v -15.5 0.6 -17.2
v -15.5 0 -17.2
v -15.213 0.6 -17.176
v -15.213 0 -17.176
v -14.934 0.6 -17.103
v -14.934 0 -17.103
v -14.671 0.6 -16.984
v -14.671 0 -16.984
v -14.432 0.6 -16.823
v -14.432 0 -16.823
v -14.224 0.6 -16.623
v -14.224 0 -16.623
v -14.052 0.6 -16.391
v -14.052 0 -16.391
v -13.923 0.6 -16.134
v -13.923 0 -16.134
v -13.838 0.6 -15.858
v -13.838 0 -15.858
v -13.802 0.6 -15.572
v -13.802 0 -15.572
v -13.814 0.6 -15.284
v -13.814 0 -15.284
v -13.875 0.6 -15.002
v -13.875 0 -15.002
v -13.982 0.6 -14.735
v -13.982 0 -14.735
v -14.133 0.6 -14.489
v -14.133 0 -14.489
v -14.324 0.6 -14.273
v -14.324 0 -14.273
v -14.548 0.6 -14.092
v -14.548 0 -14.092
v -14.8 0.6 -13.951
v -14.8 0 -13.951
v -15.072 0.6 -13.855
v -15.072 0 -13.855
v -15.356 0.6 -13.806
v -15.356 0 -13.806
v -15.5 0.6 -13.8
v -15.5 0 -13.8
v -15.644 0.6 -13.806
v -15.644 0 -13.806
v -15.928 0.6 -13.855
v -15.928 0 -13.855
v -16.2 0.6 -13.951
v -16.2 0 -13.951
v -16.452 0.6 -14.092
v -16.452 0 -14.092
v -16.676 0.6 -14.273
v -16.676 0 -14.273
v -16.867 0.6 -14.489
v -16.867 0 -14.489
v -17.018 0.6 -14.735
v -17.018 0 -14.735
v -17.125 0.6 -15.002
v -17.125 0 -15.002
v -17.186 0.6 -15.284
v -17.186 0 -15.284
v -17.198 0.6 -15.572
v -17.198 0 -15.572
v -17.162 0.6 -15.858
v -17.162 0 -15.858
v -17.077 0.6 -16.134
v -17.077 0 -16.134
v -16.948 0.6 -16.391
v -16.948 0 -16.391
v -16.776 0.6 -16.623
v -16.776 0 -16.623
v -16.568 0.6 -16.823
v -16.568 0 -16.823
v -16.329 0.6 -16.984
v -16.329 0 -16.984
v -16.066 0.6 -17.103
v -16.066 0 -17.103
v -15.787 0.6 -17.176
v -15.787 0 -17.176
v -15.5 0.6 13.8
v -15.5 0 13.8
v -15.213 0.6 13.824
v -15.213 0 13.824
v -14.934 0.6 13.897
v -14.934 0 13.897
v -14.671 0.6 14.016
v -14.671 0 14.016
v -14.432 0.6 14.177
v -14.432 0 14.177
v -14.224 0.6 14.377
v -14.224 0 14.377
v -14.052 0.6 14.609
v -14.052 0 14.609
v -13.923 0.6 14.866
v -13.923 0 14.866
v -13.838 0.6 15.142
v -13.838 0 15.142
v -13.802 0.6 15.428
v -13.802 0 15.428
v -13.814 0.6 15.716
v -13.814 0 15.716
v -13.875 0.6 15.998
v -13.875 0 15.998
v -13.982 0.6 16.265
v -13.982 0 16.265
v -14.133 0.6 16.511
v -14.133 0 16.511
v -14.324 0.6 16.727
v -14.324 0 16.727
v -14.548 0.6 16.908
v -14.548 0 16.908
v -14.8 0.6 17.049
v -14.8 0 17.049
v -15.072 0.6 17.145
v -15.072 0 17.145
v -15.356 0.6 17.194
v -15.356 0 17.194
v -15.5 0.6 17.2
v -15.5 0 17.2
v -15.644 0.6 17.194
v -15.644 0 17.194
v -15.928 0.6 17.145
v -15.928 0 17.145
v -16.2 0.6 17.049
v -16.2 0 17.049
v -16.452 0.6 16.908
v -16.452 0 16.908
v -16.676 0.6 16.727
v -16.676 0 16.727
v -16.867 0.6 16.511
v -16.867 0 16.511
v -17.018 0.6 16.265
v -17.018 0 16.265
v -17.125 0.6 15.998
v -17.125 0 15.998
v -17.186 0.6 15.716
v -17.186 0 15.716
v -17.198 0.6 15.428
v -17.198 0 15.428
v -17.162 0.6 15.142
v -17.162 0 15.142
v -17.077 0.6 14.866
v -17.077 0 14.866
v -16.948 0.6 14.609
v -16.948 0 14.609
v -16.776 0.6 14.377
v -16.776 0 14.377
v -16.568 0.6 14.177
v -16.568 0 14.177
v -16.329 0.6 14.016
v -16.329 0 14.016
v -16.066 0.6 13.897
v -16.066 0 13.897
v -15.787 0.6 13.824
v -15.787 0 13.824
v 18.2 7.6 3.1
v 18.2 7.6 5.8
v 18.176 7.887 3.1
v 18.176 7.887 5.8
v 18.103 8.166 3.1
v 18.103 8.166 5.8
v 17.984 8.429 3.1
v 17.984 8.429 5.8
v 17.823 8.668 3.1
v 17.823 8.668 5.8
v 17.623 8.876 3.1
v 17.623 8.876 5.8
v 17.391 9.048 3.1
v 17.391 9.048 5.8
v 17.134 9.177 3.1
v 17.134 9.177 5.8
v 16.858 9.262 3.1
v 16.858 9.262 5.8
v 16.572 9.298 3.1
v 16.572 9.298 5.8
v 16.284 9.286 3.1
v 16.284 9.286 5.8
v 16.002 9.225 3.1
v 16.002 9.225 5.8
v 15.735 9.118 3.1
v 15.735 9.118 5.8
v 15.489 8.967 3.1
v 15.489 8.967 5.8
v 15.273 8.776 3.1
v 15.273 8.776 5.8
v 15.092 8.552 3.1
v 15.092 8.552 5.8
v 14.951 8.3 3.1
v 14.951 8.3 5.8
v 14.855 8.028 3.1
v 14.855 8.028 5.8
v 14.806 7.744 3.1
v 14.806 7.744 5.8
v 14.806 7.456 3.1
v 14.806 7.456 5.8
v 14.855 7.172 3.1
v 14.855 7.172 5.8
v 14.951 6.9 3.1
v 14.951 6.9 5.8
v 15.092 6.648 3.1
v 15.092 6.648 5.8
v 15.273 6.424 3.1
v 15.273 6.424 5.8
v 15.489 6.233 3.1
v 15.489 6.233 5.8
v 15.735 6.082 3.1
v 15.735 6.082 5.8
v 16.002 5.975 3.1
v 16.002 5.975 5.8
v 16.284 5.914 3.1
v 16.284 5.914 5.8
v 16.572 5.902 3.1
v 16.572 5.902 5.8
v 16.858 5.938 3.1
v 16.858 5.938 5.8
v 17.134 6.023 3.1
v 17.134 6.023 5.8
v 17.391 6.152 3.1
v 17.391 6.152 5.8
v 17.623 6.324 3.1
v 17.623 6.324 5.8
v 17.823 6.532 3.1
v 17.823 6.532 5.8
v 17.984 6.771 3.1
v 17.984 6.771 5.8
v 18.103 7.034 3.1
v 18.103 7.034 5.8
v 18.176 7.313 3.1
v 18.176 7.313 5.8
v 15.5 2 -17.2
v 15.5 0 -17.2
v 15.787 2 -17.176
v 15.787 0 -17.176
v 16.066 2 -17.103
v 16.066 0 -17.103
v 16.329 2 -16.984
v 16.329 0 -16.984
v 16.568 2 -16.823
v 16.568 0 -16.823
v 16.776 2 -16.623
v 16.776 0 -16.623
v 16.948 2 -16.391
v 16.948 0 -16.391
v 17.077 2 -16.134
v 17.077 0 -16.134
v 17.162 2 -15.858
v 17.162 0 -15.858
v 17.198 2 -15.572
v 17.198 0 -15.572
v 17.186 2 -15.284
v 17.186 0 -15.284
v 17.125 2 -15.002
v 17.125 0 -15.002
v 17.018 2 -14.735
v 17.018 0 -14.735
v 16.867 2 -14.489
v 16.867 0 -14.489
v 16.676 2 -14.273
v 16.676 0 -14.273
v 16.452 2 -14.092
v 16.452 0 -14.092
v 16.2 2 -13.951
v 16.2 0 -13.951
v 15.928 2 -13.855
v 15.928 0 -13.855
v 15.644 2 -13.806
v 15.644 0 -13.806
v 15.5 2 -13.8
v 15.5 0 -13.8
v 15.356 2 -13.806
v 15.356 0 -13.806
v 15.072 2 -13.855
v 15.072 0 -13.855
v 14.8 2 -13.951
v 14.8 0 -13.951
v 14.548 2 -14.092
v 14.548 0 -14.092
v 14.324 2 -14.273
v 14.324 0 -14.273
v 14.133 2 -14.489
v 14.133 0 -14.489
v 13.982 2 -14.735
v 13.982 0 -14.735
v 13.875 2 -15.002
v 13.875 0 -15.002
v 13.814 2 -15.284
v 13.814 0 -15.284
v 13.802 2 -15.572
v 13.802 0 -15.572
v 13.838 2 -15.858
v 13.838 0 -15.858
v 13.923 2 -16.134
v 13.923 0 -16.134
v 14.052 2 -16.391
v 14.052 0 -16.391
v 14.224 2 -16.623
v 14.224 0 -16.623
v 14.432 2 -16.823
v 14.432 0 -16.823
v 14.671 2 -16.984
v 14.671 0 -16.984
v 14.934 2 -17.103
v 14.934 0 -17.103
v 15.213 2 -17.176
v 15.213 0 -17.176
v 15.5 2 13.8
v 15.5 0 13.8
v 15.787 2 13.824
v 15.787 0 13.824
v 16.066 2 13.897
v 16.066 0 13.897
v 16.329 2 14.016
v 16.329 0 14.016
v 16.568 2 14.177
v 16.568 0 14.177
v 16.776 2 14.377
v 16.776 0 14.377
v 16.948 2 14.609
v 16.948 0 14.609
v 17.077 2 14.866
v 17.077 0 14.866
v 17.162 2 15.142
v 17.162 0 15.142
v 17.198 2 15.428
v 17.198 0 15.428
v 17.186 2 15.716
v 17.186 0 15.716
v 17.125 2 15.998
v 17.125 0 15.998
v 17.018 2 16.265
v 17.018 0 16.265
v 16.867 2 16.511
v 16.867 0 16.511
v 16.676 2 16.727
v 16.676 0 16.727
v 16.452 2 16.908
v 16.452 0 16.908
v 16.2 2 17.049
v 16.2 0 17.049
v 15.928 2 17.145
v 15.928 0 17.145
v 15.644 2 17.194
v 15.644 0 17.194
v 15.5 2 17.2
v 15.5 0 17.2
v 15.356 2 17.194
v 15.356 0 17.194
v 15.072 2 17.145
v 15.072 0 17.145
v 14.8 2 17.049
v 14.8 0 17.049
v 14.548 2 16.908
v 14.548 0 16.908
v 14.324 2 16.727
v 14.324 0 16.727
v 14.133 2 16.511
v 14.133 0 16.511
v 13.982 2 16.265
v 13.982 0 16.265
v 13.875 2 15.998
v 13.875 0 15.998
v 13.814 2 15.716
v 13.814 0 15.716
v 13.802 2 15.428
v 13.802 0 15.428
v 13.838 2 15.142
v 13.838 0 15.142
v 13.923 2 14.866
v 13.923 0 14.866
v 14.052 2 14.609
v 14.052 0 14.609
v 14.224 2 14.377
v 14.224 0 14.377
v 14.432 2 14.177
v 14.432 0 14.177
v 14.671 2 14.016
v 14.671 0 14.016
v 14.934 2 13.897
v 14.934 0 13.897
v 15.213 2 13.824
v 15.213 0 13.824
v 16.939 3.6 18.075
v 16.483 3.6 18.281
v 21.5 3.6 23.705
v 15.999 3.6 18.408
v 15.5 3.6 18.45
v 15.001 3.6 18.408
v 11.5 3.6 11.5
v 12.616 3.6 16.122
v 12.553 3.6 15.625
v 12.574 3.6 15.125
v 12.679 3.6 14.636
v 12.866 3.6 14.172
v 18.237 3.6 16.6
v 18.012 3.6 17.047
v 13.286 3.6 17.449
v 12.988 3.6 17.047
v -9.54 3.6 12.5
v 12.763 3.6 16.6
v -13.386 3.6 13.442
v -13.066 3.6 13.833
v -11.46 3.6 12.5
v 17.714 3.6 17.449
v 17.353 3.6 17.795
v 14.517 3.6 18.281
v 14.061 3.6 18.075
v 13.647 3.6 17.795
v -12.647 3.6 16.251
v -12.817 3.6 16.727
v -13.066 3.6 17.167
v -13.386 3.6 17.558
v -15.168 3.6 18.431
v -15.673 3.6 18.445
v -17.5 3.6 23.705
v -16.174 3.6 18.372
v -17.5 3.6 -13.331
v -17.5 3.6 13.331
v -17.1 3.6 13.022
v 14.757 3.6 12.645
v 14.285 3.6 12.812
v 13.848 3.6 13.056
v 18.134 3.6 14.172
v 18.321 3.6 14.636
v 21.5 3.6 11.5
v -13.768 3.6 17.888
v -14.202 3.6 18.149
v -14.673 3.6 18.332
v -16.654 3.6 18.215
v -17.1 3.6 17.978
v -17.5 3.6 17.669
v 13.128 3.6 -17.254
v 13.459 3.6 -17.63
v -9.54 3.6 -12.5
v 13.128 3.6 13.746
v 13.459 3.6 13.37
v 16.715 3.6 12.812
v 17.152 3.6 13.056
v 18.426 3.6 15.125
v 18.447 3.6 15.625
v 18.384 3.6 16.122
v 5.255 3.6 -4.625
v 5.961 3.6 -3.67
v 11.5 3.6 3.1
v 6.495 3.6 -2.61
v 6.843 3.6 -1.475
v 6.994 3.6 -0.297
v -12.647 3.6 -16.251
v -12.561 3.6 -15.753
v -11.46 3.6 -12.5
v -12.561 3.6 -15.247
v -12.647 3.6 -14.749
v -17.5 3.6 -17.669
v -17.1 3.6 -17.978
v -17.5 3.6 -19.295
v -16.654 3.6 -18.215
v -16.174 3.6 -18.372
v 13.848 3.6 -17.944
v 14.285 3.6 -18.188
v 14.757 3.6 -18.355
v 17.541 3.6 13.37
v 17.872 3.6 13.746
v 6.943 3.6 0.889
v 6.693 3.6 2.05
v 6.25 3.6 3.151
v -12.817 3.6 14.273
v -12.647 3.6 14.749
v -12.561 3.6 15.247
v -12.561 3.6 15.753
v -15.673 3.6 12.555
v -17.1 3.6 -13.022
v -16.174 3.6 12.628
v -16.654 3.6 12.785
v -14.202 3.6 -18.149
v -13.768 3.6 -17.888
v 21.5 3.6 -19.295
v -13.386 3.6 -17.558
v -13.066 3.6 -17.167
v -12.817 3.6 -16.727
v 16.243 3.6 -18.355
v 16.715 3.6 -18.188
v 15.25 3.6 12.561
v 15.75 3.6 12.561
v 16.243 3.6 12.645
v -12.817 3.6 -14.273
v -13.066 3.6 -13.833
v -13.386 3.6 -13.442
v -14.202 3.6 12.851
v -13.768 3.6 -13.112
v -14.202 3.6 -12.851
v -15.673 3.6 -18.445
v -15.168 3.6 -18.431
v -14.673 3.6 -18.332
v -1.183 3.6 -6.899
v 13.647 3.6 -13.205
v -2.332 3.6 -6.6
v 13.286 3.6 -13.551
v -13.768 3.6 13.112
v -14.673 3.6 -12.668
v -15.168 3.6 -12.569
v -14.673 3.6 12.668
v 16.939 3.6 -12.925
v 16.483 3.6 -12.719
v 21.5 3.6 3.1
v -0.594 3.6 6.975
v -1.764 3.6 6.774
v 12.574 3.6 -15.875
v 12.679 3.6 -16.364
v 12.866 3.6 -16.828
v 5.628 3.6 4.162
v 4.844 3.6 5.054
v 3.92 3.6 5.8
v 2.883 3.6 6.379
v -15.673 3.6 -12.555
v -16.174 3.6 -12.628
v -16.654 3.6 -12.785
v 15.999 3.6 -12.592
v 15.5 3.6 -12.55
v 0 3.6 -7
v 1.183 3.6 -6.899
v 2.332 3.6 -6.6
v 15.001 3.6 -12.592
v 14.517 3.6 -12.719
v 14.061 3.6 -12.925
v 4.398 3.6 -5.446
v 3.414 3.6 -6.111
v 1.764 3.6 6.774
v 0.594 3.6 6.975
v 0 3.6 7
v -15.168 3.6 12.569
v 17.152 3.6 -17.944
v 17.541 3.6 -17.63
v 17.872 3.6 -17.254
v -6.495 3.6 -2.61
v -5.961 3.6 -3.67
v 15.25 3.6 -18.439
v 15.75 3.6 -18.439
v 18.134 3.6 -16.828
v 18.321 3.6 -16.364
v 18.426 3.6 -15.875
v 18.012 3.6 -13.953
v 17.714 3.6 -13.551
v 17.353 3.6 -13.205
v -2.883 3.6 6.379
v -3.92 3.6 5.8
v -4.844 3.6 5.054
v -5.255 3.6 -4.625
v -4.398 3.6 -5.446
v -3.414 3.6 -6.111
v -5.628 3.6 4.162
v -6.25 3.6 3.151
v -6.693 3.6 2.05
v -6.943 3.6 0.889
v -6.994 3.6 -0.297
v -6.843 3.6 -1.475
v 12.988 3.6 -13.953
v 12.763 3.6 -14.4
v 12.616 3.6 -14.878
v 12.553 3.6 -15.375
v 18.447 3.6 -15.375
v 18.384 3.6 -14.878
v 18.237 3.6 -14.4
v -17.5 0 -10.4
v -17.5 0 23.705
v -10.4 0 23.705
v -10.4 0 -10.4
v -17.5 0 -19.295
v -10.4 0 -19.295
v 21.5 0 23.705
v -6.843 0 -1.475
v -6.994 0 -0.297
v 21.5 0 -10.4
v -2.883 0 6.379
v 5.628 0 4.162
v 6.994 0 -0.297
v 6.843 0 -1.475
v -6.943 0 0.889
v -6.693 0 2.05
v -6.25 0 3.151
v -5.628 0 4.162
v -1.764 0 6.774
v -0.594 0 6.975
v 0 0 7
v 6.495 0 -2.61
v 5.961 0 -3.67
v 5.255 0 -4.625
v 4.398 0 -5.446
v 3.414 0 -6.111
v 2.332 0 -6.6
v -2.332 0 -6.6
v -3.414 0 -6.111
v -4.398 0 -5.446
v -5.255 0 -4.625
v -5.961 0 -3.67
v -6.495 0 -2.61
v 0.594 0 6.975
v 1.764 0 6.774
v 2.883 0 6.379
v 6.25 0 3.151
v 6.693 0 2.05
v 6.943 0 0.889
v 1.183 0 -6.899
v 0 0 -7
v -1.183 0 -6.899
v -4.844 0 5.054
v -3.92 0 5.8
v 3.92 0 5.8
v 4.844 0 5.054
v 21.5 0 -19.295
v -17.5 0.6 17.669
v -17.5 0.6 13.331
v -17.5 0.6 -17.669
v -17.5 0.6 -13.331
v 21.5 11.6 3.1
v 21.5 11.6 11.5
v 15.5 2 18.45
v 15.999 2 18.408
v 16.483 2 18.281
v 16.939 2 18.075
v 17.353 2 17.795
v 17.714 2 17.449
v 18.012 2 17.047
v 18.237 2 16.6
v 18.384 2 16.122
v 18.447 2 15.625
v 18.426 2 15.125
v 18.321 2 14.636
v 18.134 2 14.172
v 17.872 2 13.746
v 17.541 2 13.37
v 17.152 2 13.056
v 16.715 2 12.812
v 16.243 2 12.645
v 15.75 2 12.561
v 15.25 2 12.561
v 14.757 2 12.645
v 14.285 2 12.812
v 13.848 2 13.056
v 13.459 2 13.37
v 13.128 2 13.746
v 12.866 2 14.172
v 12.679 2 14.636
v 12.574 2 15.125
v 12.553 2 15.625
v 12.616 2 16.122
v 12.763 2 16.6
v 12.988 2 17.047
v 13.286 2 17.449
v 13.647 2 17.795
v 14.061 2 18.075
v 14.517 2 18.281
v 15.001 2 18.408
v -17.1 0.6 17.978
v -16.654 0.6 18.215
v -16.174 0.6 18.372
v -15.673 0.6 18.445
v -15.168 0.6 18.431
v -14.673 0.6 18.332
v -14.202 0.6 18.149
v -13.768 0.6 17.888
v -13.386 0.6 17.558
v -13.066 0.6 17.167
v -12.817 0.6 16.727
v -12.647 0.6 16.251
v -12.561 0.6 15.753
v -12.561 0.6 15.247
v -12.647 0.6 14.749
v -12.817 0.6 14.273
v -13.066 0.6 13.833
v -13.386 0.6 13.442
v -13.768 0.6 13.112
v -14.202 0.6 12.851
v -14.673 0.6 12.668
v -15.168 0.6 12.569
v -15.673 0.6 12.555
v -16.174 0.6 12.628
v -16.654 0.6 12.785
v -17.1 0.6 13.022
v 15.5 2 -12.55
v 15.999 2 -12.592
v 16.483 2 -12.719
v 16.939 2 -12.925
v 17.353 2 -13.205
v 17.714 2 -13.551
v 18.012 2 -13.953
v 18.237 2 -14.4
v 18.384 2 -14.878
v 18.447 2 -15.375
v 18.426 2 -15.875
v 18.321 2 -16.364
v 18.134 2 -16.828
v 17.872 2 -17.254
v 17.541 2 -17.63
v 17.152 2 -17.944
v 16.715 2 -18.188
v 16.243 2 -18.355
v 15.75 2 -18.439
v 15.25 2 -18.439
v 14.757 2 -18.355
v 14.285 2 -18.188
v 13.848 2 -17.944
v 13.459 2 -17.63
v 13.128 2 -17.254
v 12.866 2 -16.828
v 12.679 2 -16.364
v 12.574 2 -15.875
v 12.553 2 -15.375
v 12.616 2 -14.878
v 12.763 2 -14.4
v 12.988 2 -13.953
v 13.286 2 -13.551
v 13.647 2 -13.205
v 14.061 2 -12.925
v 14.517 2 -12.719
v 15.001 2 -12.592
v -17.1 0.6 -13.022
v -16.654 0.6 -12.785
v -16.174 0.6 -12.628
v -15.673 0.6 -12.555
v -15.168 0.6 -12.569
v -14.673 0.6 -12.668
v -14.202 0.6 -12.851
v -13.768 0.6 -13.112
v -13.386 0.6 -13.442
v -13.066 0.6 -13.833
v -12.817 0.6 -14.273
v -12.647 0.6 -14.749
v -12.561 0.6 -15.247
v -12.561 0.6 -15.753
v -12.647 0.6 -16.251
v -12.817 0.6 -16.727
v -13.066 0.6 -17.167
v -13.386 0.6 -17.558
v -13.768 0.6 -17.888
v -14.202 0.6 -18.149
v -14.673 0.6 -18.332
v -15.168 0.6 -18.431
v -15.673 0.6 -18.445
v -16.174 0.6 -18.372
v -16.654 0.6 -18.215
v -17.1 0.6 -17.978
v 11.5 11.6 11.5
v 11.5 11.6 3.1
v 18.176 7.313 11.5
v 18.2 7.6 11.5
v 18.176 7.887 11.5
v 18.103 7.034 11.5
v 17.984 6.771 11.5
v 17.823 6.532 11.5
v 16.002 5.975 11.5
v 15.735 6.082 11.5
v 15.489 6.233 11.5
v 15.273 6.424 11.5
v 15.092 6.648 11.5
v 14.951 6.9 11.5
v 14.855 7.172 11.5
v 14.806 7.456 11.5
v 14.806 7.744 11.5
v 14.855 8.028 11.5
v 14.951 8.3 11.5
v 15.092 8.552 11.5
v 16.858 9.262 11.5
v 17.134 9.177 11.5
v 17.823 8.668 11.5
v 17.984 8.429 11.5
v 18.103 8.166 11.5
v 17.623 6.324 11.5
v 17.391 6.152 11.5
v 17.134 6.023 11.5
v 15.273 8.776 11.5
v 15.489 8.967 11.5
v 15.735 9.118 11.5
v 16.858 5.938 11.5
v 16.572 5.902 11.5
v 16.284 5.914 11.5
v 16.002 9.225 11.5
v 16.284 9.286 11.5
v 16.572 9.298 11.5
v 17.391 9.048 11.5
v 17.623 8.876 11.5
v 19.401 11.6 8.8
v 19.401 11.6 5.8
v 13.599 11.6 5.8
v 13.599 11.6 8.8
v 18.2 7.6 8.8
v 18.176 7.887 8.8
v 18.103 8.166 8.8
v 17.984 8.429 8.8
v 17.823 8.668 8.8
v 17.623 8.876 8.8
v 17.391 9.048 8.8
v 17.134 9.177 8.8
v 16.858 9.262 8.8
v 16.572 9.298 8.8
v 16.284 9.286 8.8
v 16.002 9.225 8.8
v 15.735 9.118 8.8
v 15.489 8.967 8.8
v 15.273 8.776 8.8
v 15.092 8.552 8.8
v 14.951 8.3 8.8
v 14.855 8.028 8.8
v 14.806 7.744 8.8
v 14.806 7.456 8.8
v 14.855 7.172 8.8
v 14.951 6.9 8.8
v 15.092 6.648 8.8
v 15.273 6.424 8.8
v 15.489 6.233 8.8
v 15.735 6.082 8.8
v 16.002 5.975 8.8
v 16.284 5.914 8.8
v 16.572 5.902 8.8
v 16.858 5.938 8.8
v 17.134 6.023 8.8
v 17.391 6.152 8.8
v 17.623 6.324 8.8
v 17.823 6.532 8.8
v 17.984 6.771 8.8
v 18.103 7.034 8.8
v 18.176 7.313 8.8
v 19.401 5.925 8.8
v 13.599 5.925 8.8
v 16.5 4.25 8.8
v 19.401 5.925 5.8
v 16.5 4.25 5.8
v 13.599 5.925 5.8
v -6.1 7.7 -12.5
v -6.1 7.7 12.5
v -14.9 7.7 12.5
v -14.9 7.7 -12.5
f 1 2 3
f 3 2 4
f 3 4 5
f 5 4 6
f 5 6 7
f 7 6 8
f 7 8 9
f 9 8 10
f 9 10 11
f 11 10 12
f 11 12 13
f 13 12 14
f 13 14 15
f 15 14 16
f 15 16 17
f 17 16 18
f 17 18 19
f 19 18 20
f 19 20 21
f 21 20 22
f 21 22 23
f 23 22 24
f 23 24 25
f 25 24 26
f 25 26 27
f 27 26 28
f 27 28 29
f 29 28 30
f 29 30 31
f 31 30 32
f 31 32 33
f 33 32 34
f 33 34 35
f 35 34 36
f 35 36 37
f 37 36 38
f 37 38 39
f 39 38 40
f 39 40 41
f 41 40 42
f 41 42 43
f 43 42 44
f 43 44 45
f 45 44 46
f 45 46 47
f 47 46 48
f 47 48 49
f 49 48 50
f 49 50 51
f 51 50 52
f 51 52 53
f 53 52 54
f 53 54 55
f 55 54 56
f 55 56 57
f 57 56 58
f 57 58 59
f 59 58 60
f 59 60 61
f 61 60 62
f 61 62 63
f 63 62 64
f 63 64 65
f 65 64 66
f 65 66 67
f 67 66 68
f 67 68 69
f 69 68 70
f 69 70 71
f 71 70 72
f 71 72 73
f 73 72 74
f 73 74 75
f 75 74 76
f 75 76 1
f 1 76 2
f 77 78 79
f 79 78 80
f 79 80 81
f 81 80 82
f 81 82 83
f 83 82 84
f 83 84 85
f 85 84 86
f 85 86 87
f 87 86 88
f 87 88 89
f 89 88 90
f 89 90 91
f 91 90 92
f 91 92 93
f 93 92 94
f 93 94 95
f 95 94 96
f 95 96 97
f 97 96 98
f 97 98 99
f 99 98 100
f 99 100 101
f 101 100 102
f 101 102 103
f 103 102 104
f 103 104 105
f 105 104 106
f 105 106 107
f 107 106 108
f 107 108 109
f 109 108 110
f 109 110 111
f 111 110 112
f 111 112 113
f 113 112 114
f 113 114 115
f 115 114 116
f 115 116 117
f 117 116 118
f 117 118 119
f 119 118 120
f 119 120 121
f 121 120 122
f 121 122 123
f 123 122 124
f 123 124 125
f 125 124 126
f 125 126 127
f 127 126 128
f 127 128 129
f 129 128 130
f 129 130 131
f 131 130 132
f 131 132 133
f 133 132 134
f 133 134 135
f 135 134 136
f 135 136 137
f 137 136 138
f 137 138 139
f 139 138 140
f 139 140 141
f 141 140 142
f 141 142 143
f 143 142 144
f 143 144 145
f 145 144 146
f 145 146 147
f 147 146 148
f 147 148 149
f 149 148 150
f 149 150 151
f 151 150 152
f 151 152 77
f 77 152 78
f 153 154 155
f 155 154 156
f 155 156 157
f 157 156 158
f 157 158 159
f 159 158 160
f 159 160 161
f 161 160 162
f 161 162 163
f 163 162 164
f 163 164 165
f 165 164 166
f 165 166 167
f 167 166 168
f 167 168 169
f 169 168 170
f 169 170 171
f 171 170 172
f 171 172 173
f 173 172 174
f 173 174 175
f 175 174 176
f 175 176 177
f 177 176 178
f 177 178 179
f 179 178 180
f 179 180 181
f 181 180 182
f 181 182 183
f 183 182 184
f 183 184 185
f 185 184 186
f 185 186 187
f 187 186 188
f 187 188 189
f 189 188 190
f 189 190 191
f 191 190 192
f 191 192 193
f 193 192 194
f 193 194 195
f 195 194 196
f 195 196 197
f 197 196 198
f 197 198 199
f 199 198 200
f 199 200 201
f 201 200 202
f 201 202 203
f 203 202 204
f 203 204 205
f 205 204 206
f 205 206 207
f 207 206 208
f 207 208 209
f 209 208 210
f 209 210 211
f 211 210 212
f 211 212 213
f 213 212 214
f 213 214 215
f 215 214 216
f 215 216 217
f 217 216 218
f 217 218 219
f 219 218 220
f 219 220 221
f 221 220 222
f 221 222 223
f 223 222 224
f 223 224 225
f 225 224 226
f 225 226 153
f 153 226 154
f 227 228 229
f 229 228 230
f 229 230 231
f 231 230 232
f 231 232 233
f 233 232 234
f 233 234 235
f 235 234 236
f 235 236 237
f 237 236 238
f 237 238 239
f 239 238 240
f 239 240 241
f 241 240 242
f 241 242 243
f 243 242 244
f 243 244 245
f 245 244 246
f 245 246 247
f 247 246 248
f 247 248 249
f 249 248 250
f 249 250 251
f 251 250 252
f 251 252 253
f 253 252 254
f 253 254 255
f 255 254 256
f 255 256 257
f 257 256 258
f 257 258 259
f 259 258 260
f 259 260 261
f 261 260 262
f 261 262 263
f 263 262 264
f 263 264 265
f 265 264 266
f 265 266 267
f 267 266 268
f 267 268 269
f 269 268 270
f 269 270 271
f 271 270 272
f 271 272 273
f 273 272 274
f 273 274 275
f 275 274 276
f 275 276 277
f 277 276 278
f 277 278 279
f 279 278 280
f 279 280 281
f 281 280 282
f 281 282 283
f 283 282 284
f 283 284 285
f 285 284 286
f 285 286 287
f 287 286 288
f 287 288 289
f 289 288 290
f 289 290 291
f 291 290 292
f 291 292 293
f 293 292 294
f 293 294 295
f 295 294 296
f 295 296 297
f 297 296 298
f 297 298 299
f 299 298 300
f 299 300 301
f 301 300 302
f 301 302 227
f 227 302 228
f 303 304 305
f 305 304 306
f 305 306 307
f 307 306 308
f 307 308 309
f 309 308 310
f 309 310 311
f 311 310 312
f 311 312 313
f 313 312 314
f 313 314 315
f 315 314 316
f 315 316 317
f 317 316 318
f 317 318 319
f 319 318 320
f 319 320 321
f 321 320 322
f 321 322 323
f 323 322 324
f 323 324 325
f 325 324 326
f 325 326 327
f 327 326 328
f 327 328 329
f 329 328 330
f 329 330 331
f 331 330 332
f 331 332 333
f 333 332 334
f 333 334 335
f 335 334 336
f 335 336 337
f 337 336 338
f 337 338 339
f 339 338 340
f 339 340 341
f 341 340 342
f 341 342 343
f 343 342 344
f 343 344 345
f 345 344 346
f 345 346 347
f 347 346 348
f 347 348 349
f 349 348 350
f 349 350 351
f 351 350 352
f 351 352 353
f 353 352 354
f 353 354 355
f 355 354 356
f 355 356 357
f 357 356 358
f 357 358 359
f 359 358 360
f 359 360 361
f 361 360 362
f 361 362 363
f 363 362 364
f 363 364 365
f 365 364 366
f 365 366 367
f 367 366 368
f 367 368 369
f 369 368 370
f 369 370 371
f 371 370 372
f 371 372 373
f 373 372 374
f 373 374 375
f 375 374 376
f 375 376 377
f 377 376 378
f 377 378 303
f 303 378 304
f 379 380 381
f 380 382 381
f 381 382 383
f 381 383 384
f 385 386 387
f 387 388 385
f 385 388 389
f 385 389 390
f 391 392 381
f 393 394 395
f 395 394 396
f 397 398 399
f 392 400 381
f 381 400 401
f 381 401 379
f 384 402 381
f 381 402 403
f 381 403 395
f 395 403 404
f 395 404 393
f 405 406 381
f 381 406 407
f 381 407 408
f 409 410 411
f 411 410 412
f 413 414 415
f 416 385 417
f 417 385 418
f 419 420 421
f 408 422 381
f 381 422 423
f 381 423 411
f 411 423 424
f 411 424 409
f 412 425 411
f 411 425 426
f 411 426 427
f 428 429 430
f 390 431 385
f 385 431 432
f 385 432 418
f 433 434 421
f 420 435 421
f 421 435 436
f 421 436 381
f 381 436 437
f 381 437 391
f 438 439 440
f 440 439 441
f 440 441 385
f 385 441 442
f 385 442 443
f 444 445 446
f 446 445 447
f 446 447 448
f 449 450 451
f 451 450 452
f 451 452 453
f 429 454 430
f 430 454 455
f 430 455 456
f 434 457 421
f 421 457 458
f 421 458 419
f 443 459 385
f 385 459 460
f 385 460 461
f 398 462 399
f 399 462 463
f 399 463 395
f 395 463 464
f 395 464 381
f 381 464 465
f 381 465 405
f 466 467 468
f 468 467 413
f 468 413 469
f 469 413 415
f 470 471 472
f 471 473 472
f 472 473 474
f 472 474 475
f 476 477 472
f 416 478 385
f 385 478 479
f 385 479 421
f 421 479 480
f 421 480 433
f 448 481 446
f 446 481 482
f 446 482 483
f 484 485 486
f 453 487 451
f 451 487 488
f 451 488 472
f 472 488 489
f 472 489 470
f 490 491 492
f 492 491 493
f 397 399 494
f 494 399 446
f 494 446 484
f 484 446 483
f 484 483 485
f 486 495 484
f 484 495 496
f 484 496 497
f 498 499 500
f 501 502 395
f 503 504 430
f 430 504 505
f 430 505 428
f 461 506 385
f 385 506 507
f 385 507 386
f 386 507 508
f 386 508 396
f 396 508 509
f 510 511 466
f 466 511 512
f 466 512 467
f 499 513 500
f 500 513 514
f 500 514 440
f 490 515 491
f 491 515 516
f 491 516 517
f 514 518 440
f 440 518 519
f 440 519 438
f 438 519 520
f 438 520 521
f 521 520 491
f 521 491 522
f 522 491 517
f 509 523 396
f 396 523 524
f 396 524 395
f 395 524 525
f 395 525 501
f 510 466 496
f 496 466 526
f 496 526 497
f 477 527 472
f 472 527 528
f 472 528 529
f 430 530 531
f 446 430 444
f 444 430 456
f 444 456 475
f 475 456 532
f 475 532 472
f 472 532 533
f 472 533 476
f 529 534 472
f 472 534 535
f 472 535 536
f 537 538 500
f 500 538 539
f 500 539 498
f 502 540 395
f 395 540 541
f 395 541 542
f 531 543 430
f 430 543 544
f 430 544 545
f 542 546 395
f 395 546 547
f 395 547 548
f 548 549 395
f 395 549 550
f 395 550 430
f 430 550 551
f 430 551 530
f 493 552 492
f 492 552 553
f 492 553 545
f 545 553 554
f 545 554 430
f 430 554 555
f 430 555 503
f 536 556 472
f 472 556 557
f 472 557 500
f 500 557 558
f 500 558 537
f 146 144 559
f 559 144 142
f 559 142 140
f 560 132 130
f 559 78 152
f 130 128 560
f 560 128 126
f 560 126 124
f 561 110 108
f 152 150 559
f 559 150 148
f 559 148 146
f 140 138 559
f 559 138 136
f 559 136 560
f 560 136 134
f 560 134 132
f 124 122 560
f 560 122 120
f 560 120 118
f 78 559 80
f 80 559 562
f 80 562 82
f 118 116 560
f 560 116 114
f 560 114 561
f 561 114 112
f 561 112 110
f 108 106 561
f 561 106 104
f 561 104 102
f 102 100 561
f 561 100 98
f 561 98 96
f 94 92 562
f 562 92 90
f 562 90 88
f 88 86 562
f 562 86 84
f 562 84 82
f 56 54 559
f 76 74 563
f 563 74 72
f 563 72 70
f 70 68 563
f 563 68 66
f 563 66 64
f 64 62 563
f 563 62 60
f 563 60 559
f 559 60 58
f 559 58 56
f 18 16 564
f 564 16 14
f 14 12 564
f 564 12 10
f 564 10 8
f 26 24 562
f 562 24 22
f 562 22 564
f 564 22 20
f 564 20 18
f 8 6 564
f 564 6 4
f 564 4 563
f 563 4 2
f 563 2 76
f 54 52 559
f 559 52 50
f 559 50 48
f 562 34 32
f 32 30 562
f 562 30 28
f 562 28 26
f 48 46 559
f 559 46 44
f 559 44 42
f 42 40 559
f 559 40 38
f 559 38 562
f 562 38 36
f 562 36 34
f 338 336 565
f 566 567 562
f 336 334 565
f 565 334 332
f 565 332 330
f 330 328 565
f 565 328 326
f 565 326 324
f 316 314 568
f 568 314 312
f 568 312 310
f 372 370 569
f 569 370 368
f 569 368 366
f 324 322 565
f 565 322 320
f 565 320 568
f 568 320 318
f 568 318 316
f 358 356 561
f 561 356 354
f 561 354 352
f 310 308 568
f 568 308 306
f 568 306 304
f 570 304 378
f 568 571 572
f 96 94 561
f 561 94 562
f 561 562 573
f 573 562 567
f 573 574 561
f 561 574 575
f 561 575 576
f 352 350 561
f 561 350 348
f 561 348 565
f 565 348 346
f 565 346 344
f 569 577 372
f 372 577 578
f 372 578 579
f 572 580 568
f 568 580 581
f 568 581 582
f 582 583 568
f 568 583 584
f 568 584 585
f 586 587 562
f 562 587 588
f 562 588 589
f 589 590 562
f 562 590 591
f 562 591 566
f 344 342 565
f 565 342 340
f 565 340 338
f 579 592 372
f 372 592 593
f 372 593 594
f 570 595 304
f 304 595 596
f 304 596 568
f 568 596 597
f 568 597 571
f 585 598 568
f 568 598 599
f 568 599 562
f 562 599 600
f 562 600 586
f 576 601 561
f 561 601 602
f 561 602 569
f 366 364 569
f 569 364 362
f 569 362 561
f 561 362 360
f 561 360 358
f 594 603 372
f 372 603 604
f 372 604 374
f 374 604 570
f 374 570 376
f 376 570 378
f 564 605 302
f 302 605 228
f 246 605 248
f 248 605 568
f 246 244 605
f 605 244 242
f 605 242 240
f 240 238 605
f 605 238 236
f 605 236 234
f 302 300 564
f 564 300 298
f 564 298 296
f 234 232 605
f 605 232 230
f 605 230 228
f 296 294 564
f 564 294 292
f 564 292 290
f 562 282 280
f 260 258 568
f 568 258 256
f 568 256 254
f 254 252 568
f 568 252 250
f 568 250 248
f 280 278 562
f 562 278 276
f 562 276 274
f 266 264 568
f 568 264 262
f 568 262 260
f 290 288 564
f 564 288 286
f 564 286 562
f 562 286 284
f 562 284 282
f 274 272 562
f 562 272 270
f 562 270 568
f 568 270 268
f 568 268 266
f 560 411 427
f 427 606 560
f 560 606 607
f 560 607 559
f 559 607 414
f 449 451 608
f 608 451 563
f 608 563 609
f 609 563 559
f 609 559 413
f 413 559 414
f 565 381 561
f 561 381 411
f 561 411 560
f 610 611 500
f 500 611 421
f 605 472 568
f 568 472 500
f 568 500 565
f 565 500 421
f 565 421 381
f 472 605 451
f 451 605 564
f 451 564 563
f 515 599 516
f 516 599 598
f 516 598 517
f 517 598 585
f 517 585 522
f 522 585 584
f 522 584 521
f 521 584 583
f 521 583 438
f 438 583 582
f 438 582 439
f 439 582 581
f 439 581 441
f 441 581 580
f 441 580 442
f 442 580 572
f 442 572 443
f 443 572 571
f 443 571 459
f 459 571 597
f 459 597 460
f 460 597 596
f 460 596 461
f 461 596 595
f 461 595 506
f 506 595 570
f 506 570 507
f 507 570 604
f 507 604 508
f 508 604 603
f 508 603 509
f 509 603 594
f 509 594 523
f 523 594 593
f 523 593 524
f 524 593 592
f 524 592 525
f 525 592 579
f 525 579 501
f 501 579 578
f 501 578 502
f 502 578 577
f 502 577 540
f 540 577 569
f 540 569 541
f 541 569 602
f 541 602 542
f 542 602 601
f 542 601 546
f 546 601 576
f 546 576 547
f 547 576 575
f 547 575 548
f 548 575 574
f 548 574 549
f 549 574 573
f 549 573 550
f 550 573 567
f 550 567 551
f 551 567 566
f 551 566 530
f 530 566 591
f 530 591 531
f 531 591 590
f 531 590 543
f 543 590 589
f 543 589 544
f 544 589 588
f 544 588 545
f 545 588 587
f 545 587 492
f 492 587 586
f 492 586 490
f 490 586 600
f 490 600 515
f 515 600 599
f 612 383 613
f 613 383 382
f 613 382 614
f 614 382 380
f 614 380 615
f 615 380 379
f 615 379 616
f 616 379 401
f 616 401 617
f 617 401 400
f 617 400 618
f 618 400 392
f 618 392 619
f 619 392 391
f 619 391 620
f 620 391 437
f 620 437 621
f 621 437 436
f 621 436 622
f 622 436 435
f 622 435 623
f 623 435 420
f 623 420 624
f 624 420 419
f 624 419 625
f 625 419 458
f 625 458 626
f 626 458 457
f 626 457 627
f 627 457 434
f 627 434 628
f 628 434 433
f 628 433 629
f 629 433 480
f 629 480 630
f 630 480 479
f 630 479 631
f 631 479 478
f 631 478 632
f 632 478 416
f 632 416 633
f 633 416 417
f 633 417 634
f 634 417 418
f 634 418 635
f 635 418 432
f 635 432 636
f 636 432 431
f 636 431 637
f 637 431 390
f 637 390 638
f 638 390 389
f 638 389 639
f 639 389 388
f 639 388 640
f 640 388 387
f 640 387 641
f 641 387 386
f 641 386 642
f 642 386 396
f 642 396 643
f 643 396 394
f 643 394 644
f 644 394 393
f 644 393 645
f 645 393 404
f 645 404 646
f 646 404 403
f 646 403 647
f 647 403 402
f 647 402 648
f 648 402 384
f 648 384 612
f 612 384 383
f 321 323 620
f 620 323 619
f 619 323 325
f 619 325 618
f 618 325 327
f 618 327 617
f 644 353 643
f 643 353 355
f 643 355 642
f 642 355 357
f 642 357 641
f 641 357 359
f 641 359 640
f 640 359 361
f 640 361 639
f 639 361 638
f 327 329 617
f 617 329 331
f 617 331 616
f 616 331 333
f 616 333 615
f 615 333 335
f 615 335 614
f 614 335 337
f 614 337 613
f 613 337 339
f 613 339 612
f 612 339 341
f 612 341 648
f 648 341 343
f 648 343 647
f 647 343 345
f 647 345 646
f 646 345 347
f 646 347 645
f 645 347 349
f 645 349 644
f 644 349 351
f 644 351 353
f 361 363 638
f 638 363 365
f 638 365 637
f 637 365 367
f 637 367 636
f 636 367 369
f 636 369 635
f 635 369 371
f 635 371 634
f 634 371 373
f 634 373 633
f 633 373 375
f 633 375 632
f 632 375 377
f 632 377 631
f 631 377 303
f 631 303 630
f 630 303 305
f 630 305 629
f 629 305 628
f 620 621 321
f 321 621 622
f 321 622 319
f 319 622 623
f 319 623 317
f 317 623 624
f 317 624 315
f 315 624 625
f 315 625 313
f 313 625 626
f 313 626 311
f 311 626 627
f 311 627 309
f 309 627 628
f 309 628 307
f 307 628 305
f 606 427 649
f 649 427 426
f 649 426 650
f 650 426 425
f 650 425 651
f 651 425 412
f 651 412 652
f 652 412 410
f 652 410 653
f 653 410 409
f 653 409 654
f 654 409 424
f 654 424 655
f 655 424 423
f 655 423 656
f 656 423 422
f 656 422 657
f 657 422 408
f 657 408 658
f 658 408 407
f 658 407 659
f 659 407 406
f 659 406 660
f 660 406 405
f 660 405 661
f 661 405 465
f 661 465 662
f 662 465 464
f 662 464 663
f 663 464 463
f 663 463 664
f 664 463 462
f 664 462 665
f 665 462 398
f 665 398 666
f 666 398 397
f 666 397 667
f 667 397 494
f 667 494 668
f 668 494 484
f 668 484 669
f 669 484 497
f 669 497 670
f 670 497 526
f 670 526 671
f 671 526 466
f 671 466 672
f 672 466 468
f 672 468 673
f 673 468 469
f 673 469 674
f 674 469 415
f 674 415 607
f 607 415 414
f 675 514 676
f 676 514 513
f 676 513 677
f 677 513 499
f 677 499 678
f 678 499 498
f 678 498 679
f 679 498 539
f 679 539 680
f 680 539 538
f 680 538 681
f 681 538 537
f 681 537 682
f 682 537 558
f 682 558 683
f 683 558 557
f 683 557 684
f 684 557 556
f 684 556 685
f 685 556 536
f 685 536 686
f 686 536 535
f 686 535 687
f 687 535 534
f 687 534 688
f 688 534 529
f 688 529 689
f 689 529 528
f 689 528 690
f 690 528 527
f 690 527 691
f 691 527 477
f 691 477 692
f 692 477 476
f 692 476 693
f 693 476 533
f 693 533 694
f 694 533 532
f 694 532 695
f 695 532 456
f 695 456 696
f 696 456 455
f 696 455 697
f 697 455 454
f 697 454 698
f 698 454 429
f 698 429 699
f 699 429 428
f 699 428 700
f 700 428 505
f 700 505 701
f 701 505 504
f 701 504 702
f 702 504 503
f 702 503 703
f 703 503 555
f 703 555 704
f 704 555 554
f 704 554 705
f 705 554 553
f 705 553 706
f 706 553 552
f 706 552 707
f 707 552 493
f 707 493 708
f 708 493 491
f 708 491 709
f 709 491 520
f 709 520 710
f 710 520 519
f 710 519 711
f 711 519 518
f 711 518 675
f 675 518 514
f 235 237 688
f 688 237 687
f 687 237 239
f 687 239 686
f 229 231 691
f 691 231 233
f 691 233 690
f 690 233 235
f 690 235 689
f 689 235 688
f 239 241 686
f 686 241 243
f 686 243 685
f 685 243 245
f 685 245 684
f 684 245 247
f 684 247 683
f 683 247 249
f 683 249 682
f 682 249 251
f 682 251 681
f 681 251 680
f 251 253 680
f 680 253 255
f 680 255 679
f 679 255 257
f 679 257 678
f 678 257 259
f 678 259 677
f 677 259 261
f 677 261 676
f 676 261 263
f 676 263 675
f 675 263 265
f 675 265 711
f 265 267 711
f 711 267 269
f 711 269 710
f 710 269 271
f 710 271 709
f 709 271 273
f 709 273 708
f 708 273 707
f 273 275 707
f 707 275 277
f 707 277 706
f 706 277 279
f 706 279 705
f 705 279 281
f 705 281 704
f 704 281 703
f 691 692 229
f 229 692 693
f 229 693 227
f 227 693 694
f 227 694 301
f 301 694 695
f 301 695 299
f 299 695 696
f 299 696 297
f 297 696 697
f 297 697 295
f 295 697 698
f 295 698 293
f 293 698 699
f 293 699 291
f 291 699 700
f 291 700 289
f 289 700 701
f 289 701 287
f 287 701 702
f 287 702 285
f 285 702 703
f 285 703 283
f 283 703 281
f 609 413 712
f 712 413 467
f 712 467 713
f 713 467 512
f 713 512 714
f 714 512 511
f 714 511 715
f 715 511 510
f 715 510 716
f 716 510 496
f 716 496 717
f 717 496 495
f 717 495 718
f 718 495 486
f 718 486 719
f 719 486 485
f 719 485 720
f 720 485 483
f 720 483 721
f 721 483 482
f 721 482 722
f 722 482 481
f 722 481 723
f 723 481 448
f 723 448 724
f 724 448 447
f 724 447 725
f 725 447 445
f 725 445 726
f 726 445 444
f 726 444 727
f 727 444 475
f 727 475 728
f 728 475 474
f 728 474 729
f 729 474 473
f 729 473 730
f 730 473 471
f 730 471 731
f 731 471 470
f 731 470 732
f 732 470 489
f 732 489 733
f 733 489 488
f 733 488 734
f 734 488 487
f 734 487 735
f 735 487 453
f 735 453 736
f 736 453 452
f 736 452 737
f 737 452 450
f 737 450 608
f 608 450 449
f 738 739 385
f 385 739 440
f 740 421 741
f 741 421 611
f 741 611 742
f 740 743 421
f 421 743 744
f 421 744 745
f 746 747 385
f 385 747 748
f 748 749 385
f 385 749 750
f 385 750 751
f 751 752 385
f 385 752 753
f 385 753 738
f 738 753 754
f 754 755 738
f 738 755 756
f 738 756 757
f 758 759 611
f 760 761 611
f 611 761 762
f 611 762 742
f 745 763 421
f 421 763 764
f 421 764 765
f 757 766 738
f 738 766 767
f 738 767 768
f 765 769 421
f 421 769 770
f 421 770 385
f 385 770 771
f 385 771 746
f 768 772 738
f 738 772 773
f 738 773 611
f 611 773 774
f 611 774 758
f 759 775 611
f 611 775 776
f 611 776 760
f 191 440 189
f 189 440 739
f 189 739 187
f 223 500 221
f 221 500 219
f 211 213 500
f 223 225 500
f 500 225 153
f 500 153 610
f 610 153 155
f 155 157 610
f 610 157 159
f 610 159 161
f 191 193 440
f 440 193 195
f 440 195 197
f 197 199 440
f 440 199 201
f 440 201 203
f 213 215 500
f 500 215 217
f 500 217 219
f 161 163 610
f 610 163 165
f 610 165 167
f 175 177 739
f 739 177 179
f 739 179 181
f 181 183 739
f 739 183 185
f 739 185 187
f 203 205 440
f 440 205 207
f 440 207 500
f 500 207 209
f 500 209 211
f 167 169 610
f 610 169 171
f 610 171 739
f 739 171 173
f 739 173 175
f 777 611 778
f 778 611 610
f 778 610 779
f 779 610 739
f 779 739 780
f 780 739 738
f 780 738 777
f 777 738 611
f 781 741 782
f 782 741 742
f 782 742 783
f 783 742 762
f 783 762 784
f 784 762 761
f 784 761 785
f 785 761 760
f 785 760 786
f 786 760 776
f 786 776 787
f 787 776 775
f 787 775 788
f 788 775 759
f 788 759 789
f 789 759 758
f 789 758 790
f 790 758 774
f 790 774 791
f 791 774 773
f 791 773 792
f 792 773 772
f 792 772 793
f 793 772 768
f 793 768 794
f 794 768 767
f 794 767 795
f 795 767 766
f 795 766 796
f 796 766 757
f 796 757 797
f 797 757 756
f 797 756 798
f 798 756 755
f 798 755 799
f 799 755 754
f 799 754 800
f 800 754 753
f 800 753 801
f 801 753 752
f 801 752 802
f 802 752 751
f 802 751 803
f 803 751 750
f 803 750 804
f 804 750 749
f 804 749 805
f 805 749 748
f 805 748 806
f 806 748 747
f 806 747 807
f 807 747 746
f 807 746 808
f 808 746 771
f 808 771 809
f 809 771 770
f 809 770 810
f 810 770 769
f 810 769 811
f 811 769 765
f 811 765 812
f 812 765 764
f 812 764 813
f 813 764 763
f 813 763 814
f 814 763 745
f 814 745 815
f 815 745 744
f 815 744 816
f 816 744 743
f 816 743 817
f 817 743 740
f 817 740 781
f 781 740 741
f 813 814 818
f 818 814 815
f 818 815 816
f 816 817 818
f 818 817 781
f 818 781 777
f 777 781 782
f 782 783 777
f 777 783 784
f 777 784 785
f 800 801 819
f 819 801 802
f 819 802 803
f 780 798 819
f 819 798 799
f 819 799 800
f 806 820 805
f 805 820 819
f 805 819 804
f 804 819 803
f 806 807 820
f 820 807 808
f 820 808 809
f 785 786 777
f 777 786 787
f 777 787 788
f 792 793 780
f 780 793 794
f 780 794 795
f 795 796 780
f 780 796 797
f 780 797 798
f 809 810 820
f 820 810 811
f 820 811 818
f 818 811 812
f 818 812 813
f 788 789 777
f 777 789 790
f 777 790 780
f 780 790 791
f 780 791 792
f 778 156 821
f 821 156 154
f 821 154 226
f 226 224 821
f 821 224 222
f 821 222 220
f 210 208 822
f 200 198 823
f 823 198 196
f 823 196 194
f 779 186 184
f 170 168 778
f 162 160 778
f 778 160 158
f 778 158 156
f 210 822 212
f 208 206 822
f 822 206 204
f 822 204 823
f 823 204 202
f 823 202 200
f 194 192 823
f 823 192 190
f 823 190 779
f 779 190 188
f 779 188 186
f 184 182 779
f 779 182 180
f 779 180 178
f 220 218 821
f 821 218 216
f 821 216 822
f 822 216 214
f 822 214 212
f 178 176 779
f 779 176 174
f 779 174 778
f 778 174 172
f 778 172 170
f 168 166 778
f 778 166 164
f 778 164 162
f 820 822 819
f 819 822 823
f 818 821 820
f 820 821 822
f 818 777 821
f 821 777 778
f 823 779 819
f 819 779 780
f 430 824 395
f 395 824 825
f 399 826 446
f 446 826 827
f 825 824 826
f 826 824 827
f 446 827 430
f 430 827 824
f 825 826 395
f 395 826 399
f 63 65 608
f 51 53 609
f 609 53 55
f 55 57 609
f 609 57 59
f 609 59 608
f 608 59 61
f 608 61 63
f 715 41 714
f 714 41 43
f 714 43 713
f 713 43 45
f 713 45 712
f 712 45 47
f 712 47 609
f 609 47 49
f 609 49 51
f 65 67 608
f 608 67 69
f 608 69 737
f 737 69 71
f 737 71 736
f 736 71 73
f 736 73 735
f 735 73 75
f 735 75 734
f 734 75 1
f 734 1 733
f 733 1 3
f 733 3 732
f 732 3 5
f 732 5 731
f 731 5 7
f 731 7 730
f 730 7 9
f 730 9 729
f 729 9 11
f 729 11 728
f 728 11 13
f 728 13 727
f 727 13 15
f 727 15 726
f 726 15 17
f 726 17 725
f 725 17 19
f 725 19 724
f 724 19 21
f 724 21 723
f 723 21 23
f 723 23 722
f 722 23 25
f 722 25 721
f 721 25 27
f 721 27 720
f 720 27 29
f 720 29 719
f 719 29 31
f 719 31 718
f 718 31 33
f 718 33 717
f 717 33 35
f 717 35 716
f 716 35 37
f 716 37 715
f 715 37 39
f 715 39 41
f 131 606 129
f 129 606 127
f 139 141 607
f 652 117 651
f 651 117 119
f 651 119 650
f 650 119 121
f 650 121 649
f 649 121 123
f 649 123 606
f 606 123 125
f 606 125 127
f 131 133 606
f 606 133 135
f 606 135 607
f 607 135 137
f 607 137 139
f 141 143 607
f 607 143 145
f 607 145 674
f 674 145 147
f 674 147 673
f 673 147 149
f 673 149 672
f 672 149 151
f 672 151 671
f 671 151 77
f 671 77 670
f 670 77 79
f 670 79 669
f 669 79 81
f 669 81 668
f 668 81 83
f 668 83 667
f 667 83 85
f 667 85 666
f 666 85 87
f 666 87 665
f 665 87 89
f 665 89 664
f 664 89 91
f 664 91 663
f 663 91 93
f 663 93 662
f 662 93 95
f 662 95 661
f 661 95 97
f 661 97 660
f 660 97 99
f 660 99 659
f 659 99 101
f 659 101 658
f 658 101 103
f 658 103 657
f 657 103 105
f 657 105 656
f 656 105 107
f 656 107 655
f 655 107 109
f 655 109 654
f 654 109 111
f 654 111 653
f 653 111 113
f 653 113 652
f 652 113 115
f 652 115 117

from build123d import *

# Parameters (mm, degrees)
CROQUIS1_W                   = 39
CROQUIS1_H                   = 43
CROQUIS1_R                   = 7
CROQUIS1_R_2                 = 1.7
SALIENTE_EXTRUIR1_DEPTH      = 3.6
CROQUIS2_R                   = 2.95
CORTAR_EXTRUIR1_DEPTH        = 1.6
CROQUIS3_W                   = 10
CROQUIS3_H                   = 8.4
SALIENTE_EXTRUIR2_DEPTH      = 8
CROQUIS4_R                   = 1.7
CORTAR_EXTRUIR2_DEPTH        = 11
CORTAR_EXTRUIR3_DEPTH        = 1.5
CORTAR_EXTRUIR3_DEPTH_BACK   = 1.5
SALIENTE_EXTRUIR3_DEPTH      = 12.5
SALIENTE_EXTRUIR3_DEPTH_BACK = 12.5
CORTAR_EXTRUIR4_DEPTH        = 3


with BuildPart() as part:
    # Croquis1 → Saliente-Extruir1 (new body)
    with BuildSketch(Plane(origin=(0, 0, 0), x_dir=(1, 0, 0), z_dir=(0, 1, 0))):
        with Locations((2, -2.205128205)):
            Rectangle(CROQUIS1_W, CROQUIS1_H)
        Circle(CROQUIS1_R, mode=Mode.SUBTRACT)
        with Locations((-15.5, 15.5)):
            Circle(CROQUIS1_R_2, mode=Mode.SUBTRACT)
        with Locations((15.5, 15.5)):
            Circle(CROQUIS1_R_2, mode=Mode.SUBTRACT)
        with Locations((-15.5, -15.5)):
            Circle(CROQUIS1_R_2, mode=Mode.SUBTRACT)
        with Locations((15.5, -15.5)):
            Circle(CROQUIS1_R_2, mode=Mode.SUBTRACT)
    extrude(amount=SALIENTE_EXTRUIR1_DEPTH)

    # Croquis2 → Cortar-Extruir1 (cut)
    with BuildSketch(Plane(origin=(0, 3.6, 0), x_dir=(1, 0, 0), z_dir=(0, 1, 0))):
        with Locations((-15.5, 15.5)):
            Circle(CROQUIS2_R)
        with Locations((15.5, 15.5)):
            Circle(CROQUIS2_R)
        with Locations((-15.5, -15.5)):
            Circle(CROQUIS2_R)
        with Locations((15.5, -15.5)):
            Circle(CROQUIS2_R)
    extrude(amount=-CORTAR_EXTRUIR1_DEPTH, mode=Mode.SUBTRACT)

    # Croquis3 → Saliente-Extruir2 (add)
    with BuildSketch(Plane(origin=(0, 3.6, 0), x_dir=(1, 0, 0), z_dir=(0, 1, 0))):
        with Locations((16.5, -7.3)):
            Rectangle(CROQUIS3_W, CROQUIS3_H)
    extrude(amount=SALIENTE_EXTRUIR2_DEPTH)

    # Croquis4 → Cortar-Extruir2 (cut)
    with BuildSketch(Plane.XY.offset(11.5)):
        with Locations((16.5, 7.6)):
            Circle(CROQUIS4_R)
    extrude(amount=-CORTAR_EXTRUIR2_DEPTH, mode=Mode.SUBTRACT)

    # Croquis5 → Cortar-Extruir3 (cut, two sides)
    with BuildSketch(Plane.XY.offset(7.3)) as cortar_extruir3_sk:
        Polygon((13.598814897, 9.275), (13.598814897, 15.925), (19.401185103, 15.925), (19.401185103, 9.275), (19.401185103, 5.925), (16.5, 4.25), (13.598814897, 5.925), align=None)
    extrude(amount=CORTAR_EXTRUIR3_DEPTH, mode=Mode.SUBTRACT)
    extrude(cortar_extruir3_sk.sketch, amount=-CORTAR_EXTRUIR3_DEPTH_BACK, mode=Mode.SUBTRACT)

    # Croquis6 → Saliente-Extruir3 (add, two sides)
    with BuildSketch(Plane.XY) as saliente_extruir3_sk:
        Polygon((-10.5, 2.456284193), (-14.9, 7.7), (-6.1, 7.7), align=None)
    extrude(amount=SALIENTE_EXTRUIR3_DEPTH)
    extrude(saliente_extruir3_sk.sketch, amount=-SALIENTE_EXTRUIR3_DEPTH_BACK)

    # Croquis7 → Cortar-Extruir4 (cut)
    with BuildSketch(Plane(origin=(0, 3.6, 0), x_dir=(1, 0, 0), z_dir=(0, 1, 0))):
        with BuildLine():
            Line((-17.5, -13.331475156), (-17.5, -17.668524844))
            ThreePointArc((-17.5, -17.668524844), (-12.55, -15.5), (-17.5, -13.331475156))
        make_face()
        with BuildLine():
            Line((-17.5, 17.668524844), (-17.5, 13.331475156))
            ThreePointArc((-17.5, 13.331475156), (-12.55, 15.5), (-17.5, 17.668524844))
        make_face()
    extrude(amount=-CORTAR_EXTRUIR4_DEPTH, mode=Mode.SUBTRACT)


solid = part.part
